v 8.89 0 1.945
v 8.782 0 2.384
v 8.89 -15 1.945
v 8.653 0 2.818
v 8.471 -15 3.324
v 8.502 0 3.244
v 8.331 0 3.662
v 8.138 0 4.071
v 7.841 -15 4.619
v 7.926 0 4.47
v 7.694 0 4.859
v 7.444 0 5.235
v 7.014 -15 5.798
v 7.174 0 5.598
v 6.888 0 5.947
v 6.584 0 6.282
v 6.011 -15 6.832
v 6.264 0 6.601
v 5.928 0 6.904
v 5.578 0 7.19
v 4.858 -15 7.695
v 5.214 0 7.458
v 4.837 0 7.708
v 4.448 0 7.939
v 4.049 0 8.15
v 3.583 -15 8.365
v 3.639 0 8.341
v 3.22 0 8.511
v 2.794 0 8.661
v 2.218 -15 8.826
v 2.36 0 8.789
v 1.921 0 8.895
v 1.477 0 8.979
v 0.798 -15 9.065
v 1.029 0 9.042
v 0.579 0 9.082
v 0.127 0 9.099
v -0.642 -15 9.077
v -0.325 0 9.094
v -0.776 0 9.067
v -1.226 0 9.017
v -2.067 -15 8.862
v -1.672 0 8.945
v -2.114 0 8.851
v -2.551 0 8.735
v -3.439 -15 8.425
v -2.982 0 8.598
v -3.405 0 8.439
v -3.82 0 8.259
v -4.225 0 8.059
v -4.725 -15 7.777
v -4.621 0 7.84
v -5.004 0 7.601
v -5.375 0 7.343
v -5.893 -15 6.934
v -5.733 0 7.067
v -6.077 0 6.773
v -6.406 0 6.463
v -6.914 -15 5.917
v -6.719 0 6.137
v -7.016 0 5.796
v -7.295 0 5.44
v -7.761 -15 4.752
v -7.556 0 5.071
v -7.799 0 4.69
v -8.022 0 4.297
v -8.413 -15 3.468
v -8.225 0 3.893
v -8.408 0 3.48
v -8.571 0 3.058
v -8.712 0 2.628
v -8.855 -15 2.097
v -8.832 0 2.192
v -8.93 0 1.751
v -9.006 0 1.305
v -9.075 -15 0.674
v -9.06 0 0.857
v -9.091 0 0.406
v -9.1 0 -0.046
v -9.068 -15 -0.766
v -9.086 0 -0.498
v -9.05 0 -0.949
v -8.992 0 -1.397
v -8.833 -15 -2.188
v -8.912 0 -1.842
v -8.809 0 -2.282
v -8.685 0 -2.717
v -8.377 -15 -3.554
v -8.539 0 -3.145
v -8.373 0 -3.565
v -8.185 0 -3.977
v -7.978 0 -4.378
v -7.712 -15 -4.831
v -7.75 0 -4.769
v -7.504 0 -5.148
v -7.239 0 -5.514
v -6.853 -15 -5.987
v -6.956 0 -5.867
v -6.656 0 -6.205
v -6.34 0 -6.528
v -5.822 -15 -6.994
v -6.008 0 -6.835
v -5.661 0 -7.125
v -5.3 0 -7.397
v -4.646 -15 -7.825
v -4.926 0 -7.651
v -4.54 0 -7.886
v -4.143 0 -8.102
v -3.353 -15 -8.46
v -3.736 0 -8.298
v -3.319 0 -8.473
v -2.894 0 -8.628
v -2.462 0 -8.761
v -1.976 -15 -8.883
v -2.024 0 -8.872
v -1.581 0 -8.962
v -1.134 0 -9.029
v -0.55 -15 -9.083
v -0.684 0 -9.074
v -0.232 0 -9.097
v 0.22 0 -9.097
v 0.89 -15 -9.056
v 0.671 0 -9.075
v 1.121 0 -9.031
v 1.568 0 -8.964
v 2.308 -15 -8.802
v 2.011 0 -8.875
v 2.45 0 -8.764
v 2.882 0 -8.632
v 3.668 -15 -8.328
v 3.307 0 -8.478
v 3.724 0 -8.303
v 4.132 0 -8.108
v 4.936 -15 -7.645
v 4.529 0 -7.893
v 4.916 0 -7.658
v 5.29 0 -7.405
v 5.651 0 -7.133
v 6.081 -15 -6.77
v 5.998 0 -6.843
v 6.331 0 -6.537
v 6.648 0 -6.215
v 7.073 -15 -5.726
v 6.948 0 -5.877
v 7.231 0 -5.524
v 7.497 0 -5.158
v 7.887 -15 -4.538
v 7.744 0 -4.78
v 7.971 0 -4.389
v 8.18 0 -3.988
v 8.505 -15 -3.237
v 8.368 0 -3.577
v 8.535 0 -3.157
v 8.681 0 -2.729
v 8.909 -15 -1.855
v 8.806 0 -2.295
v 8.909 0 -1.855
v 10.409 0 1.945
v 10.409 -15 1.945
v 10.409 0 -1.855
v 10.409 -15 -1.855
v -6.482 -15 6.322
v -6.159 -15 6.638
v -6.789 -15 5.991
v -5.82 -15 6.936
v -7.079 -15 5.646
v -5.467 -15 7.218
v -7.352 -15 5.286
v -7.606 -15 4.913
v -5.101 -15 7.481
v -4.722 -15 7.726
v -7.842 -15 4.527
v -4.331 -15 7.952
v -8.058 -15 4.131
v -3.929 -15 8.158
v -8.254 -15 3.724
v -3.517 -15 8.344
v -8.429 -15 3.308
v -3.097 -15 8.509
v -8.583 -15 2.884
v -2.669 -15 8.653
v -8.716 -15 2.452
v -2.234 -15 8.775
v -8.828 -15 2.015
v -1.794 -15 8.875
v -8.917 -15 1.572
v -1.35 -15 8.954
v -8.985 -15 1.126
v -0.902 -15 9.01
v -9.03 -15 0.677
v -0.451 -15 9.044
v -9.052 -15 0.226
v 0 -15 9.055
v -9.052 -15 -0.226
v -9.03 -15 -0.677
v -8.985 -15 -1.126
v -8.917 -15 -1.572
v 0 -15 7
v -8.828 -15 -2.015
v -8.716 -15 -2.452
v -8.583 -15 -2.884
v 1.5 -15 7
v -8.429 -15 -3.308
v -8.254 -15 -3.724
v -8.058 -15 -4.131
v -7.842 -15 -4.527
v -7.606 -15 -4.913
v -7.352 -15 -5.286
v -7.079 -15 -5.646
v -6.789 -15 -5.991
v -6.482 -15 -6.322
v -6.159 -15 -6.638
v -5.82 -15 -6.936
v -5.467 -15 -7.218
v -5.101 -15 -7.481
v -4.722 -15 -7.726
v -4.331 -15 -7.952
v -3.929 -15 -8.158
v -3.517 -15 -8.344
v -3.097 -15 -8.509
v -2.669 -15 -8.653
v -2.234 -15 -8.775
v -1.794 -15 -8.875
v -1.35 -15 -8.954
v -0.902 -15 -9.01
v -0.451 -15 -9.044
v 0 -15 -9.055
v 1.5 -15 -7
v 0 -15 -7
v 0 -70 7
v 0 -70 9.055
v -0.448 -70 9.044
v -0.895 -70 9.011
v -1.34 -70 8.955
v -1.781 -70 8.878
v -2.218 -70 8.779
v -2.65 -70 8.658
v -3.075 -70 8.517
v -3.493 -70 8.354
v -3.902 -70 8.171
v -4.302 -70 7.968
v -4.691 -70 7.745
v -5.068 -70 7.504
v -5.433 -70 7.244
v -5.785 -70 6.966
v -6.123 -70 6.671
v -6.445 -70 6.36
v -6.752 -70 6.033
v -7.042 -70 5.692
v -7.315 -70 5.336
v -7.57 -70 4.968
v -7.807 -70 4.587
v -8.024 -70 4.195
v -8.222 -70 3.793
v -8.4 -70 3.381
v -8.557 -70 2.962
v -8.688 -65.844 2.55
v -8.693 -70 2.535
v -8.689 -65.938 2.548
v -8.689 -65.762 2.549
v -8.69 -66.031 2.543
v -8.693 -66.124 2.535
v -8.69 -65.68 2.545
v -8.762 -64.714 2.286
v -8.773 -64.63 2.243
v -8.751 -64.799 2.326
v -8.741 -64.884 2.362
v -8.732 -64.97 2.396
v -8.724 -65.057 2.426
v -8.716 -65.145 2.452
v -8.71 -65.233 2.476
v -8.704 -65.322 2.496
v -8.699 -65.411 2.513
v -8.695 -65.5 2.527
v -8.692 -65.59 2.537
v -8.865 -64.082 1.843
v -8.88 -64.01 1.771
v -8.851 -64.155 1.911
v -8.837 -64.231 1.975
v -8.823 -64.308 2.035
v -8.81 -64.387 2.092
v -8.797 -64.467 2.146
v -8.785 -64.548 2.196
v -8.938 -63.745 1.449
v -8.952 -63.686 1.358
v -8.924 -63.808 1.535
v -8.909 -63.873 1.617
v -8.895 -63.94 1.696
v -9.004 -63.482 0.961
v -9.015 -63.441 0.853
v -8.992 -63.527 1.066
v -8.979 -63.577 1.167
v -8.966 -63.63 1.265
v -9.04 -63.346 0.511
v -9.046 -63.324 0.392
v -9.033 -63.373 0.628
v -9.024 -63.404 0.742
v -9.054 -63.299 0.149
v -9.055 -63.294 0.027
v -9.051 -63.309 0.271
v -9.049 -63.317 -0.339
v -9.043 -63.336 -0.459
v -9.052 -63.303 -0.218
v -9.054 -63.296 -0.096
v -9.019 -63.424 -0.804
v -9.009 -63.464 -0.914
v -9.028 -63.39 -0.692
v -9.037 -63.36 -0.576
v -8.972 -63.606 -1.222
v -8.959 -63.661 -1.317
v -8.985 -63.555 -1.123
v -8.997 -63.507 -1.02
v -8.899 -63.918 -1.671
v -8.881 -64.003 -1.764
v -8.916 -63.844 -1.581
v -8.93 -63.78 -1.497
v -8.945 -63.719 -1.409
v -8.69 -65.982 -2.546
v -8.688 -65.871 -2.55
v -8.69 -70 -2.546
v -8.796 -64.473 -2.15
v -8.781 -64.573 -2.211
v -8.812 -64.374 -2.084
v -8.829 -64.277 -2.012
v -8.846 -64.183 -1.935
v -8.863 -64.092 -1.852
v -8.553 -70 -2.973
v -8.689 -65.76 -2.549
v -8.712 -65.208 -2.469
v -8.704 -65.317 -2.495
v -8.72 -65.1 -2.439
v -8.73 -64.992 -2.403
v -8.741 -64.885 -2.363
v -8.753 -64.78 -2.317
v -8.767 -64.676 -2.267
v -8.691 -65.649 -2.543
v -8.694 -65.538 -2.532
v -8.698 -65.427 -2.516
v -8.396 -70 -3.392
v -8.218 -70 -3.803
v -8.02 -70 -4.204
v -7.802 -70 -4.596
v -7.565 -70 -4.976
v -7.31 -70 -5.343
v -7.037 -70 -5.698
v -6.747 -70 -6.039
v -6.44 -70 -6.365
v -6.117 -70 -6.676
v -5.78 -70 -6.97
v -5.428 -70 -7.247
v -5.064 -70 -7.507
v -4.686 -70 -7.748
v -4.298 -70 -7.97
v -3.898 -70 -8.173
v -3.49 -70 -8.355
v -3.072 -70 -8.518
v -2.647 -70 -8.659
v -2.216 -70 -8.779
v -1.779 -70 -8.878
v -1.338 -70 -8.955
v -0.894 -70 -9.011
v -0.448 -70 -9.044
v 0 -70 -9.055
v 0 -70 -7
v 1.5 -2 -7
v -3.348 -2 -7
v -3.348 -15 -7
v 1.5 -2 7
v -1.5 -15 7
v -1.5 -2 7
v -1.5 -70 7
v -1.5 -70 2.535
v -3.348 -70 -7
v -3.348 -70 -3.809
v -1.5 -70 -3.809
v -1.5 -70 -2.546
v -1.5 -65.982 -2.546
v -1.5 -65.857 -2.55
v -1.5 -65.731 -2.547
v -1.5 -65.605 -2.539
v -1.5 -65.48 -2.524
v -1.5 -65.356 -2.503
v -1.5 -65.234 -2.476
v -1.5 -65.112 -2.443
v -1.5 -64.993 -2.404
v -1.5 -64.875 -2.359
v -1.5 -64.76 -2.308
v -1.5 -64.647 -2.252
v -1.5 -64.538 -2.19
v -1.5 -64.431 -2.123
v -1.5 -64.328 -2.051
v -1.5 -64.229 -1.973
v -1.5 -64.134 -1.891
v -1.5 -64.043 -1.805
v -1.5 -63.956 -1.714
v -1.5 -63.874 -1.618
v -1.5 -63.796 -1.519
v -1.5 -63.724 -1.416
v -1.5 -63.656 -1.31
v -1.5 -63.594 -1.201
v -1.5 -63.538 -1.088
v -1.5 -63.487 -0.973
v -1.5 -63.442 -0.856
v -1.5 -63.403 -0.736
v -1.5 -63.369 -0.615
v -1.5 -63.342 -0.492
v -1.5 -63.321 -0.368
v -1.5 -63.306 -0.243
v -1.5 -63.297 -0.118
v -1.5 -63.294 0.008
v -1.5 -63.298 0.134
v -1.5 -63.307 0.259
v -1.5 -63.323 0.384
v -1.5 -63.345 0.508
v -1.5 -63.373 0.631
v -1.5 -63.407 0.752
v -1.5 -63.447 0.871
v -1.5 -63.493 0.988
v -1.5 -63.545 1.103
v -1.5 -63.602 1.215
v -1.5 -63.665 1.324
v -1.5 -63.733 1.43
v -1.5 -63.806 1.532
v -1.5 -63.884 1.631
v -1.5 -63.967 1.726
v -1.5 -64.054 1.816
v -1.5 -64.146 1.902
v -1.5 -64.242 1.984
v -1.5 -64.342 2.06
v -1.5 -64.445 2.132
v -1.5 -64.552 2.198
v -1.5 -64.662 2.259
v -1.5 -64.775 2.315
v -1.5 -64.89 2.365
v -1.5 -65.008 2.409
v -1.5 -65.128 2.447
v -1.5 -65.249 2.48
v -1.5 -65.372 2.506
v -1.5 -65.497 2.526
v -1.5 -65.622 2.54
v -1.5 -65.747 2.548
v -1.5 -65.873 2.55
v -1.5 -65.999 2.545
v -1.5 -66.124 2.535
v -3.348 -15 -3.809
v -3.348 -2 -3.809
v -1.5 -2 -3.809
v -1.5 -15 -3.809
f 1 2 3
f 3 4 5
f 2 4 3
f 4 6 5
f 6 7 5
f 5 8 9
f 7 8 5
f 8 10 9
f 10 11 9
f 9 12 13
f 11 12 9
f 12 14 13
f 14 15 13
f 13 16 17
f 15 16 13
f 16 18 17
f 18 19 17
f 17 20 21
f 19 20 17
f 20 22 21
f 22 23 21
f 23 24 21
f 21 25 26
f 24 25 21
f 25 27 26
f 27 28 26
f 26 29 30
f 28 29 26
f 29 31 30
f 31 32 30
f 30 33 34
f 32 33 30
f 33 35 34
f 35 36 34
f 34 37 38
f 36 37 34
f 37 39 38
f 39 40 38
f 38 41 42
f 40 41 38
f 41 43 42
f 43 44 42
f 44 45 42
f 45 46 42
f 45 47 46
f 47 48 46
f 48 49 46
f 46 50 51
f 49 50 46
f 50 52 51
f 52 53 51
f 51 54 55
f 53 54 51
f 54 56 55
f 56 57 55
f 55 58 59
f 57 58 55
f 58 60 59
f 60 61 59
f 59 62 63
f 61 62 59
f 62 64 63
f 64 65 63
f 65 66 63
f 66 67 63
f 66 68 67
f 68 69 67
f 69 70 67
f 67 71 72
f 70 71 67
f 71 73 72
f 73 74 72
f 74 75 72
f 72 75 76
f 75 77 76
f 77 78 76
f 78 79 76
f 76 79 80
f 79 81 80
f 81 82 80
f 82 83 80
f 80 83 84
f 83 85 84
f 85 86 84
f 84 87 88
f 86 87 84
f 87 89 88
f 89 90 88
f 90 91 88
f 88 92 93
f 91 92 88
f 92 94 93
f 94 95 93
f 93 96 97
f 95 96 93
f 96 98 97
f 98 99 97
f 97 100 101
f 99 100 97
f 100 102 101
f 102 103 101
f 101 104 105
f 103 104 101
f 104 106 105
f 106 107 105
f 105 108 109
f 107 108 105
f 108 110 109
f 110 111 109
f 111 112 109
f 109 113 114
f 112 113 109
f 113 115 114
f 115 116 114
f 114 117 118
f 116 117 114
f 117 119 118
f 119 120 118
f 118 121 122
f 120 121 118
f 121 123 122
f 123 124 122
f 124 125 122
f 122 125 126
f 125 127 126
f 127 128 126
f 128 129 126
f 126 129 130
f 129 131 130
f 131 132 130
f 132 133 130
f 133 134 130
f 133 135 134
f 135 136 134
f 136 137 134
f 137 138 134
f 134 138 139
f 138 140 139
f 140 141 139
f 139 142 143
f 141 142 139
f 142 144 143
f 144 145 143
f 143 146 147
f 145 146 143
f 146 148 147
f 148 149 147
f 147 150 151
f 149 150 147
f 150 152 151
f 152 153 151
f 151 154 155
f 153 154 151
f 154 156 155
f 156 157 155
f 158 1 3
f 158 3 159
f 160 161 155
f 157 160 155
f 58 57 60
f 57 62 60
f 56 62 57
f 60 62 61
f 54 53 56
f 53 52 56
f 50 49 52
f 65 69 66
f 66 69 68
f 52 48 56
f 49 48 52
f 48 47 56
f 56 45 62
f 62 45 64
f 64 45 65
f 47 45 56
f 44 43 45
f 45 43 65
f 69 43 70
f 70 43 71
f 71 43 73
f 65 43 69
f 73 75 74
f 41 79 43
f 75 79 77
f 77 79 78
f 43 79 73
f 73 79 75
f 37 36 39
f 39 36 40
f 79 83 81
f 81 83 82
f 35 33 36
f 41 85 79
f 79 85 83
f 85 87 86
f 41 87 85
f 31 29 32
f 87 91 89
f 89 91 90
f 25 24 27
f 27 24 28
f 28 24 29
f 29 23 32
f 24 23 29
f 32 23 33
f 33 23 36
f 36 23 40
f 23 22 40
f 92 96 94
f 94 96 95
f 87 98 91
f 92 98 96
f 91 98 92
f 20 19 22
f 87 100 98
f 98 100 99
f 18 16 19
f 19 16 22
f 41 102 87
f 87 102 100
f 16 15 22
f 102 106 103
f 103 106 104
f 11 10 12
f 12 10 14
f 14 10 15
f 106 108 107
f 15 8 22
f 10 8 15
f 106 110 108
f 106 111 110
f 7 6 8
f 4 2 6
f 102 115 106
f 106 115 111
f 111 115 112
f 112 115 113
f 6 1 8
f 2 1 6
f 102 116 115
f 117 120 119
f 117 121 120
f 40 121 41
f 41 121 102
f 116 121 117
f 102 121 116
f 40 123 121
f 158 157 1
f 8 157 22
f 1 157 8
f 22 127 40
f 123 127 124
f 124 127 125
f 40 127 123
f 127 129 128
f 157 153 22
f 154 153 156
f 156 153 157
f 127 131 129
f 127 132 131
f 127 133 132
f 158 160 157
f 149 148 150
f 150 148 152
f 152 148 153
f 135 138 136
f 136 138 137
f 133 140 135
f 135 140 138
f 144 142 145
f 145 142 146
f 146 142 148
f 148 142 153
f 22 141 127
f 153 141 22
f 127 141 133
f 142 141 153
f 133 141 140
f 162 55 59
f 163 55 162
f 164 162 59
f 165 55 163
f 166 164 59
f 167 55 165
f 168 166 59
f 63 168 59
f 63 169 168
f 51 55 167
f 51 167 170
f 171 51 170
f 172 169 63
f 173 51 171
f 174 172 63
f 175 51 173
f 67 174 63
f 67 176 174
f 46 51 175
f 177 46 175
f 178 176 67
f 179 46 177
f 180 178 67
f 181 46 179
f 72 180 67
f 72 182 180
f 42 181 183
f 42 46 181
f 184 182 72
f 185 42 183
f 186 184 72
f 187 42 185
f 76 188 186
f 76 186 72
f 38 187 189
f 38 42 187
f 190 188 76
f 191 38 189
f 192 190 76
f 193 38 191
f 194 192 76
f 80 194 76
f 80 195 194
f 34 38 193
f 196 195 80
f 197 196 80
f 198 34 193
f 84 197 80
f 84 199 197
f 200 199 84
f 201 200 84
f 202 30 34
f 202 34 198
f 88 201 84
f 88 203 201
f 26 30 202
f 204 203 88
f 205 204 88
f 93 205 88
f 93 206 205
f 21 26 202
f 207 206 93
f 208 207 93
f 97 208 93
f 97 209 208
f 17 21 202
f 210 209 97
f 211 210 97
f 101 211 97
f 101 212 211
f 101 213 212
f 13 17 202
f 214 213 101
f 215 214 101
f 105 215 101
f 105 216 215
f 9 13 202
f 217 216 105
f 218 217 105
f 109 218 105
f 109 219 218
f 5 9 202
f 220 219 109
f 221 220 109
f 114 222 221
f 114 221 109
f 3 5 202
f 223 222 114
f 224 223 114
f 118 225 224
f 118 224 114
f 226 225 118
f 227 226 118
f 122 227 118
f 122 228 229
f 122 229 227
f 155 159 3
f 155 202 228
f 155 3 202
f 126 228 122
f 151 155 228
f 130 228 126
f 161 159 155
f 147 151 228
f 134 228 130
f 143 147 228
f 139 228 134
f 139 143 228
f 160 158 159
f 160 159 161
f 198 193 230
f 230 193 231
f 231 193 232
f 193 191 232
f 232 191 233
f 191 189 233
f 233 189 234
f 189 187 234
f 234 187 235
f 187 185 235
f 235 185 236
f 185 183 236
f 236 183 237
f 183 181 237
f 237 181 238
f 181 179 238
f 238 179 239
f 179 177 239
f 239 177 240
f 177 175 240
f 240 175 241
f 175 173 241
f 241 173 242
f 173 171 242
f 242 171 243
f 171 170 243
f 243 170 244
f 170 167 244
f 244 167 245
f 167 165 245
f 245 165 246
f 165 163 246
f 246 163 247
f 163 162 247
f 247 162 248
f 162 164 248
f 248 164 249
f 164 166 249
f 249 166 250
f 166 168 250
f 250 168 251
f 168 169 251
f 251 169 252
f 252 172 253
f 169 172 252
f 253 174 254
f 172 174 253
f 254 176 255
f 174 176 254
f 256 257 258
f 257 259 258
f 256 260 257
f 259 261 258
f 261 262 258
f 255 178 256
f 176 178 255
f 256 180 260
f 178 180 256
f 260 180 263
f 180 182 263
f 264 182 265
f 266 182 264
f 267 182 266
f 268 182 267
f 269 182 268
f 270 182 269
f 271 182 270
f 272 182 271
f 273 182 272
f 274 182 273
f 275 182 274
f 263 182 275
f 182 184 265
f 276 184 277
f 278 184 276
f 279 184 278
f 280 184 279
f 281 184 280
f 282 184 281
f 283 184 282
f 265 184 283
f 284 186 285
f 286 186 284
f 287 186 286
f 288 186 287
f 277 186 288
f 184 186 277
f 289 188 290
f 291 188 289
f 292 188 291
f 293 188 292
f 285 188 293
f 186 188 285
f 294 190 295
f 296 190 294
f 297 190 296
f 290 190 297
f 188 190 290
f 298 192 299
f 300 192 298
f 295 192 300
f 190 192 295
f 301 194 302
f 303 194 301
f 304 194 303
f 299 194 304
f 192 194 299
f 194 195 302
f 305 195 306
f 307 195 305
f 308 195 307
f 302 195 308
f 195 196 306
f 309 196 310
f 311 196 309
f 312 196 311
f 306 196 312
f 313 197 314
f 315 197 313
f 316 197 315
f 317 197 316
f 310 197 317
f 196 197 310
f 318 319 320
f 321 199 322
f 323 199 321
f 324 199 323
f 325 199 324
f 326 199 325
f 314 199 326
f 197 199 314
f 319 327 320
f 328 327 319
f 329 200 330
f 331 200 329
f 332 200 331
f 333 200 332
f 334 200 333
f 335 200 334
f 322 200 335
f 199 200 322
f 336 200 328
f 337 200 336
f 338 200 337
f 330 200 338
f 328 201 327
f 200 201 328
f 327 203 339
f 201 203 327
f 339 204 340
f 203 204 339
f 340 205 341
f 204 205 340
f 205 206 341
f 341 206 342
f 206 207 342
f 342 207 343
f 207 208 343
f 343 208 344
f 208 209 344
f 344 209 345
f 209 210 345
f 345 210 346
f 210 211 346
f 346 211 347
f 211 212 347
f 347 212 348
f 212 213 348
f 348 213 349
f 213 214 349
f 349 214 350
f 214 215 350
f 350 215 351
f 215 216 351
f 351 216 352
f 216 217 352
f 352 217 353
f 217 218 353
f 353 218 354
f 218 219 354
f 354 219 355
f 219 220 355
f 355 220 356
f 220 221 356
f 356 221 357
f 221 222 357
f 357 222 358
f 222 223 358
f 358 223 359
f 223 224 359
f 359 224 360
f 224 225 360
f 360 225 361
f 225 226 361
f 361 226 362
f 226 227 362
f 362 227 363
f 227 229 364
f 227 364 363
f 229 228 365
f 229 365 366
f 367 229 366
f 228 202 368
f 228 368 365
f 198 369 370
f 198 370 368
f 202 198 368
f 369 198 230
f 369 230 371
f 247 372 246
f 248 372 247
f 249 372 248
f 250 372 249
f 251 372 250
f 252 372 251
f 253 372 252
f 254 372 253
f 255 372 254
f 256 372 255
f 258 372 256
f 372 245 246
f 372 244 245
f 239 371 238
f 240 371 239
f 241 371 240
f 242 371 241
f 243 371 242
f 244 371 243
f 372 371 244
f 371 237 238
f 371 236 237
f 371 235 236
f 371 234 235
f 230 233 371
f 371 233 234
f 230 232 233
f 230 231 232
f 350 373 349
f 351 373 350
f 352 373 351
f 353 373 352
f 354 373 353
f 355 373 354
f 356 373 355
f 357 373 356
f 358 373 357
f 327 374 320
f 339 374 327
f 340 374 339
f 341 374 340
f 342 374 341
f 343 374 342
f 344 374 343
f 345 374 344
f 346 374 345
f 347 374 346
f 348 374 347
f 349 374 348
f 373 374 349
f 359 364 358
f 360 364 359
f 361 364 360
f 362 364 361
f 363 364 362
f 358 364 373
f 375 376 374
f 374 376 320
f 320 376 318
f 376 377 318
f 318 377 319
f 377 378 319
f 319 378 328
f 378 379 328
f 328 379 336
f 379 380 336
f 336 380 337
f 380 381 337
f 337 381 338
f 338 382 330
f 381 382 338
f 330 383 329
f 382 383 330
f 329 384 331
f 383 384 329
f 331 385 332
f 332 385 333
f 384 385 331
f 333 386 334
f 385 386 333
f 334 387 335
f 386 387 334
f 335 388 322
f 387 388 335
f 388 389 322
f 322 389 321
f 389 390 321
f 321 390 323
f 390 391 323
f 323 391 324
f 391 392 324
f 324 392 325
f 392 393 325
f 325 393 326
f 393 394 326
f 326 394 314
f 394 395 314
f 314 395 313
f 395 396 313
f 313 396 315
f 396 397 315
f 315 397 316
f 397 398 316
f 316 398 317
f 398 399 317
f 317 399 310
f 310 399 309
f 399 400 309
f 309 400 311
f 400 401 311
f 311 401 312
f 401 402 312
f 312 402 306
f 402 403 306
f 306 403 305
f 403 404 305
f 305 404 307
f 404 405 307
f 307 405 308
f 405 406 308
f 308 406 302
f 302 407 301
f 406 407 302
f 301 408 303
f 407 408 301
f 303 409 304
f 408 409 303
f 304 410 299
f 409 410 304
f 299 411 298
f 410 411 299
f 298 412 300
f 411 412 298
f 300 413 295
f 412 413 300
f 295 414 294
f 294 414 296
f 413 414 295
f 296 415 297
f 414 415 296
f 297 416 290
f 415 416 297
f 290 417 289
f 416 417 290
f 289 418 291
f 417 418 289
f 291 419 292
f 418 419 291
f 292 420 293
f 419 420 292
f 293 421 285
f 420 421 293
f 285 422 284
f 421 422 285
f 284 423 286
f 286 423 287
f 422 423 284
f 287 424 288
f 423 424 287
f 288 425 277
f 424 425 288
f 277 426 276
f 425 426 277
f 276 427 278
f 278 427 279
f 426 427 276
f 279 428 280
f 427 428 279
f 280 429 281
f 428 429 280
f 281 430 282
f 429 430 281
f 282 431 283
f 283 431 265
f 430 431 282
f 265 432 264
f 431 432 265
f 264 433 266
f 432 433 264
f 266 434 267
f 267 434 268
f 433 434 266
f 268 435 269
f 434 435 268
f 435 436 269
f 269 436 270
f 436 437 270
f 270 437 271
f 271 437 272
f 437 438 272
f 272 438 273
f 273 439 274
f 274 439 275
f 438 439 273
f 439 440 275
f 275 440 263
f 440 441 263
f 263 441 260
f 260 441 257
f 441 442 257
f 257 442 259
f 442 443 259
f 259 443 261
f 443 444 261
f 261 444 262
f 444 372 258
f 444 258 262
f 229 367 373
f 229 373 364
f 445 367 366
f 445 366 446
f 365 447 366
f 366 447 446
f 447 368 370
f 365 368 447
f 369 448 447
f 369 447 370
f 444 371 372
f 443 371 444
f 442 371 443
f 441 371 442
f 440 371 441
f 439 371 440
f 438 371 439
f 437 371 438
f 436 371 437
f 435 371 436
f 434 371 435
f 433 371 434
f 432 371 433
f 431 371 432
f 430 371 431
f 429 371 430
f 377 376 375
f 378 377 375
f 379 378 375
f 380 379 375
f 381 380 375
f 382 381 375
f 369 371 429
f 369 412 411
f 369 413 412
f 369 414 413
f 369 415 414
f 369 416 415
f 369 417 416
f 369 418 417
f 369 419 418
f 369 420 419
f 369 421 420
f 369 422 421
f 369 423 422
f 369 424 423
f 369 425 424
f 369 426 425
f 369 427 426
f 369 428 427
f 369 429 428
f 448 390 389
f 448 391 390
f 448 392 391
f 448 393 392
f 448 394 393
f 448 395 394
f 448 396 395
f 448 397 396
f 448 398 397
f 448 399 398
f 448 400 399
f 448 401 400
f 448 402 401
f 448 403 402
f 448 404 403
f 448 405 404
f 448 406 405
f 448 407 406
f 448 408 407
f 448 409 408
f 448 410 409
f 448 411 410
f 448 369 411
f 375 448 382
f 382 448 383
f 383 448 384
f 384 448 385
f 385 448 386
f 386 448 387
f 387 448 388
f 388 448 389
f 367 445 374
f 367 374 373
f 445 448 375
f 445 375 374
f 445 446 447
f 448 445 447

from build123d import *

# Parameters (mm, degrees)
PAD_DEPTH       = 15
POCKET_DEPTH    = 13
PAD001_DEPTH    = 55
POCKET001_DEPTH = 7.601


with BuildPart() as part:
    # Sketch → Pad (new body)
    with BuildSketch(Plane.XZ):
        with BuildLine():
            ThreePointArc((8.889624, 1.945402), (-9.099882, -0.046426), (8.90901, -1.854598))
            Line((10.40901, -1.854598), (8.90901, -1.854598))
            Line((10.40901, 1.945402), (10.40901, -1.854598))
            Line((8.889624, 1.945402), (10.40901, 1.945402))
        make_face()
    extrude(amount=PAD_DEPTH)

    # Sketch001 (on Face6 of Pad) → Pocket (cut)
    with BuildSketch(Plane.XZ.offset(15)):
        Polygon((-1.5, 7), (1.5, 7), (1.5, -7), (-3.348355, -7), (-3.348355, -3.808815), (-1.5, -3.808815), align=None)
    extrude(amount=-POCKET_DEPTH, mode=Mode.SUBTRACT)

    # Sketch002 (on Face5 of Pocket) → Pad001 (join)
    with BuildSketch(Plane.XZ.offset(15)):
        with BuildLine():
            Line((0, 7), (-1.5, 7))
            Line((-1.5, 7), (-1.5, -3.808815))
            Line((-1.5, -3.808815), (-3.348355, -3.808815))
            Line((-3.348355, -3.808815), (-3.348355, -7))
            Line((-3.348355, -7), (0, -7))
            Line((0, -7), (0, -9.054887))
            ThreePointArc((0, 9.054887), (-9.054887, 0), (0, -9.054887))
            Line((0, 7), (0, 9.054887))
        make_face()
    extrude(amount=PAD001_DEPTH)

    # Sketch003 (on Face19 of Pad001) → Pocket001 (cut, through all)
    with BuildSketch(Plane(origin=(-1.5, 0, 0), x_dir=(0, 0, 1), z_dir=(1, 0, 0))):
        with BuildLine():
            Line((-2.546247, 70), (-2.546247, 65.982418))
            ThreePointArc((-2.546247, 65.982418), (0.071035, 63.295116), (2.534594, 66.124008))
            Line((2.534594, 70), (2.534594, 66.124008))
            Line((-2.546247, 70), (2.534594, 70))
        make_face()
    extrude(amount=-POCKET001_DEPTH, mode=Mode.SUBTRACT)


solid = part.part
